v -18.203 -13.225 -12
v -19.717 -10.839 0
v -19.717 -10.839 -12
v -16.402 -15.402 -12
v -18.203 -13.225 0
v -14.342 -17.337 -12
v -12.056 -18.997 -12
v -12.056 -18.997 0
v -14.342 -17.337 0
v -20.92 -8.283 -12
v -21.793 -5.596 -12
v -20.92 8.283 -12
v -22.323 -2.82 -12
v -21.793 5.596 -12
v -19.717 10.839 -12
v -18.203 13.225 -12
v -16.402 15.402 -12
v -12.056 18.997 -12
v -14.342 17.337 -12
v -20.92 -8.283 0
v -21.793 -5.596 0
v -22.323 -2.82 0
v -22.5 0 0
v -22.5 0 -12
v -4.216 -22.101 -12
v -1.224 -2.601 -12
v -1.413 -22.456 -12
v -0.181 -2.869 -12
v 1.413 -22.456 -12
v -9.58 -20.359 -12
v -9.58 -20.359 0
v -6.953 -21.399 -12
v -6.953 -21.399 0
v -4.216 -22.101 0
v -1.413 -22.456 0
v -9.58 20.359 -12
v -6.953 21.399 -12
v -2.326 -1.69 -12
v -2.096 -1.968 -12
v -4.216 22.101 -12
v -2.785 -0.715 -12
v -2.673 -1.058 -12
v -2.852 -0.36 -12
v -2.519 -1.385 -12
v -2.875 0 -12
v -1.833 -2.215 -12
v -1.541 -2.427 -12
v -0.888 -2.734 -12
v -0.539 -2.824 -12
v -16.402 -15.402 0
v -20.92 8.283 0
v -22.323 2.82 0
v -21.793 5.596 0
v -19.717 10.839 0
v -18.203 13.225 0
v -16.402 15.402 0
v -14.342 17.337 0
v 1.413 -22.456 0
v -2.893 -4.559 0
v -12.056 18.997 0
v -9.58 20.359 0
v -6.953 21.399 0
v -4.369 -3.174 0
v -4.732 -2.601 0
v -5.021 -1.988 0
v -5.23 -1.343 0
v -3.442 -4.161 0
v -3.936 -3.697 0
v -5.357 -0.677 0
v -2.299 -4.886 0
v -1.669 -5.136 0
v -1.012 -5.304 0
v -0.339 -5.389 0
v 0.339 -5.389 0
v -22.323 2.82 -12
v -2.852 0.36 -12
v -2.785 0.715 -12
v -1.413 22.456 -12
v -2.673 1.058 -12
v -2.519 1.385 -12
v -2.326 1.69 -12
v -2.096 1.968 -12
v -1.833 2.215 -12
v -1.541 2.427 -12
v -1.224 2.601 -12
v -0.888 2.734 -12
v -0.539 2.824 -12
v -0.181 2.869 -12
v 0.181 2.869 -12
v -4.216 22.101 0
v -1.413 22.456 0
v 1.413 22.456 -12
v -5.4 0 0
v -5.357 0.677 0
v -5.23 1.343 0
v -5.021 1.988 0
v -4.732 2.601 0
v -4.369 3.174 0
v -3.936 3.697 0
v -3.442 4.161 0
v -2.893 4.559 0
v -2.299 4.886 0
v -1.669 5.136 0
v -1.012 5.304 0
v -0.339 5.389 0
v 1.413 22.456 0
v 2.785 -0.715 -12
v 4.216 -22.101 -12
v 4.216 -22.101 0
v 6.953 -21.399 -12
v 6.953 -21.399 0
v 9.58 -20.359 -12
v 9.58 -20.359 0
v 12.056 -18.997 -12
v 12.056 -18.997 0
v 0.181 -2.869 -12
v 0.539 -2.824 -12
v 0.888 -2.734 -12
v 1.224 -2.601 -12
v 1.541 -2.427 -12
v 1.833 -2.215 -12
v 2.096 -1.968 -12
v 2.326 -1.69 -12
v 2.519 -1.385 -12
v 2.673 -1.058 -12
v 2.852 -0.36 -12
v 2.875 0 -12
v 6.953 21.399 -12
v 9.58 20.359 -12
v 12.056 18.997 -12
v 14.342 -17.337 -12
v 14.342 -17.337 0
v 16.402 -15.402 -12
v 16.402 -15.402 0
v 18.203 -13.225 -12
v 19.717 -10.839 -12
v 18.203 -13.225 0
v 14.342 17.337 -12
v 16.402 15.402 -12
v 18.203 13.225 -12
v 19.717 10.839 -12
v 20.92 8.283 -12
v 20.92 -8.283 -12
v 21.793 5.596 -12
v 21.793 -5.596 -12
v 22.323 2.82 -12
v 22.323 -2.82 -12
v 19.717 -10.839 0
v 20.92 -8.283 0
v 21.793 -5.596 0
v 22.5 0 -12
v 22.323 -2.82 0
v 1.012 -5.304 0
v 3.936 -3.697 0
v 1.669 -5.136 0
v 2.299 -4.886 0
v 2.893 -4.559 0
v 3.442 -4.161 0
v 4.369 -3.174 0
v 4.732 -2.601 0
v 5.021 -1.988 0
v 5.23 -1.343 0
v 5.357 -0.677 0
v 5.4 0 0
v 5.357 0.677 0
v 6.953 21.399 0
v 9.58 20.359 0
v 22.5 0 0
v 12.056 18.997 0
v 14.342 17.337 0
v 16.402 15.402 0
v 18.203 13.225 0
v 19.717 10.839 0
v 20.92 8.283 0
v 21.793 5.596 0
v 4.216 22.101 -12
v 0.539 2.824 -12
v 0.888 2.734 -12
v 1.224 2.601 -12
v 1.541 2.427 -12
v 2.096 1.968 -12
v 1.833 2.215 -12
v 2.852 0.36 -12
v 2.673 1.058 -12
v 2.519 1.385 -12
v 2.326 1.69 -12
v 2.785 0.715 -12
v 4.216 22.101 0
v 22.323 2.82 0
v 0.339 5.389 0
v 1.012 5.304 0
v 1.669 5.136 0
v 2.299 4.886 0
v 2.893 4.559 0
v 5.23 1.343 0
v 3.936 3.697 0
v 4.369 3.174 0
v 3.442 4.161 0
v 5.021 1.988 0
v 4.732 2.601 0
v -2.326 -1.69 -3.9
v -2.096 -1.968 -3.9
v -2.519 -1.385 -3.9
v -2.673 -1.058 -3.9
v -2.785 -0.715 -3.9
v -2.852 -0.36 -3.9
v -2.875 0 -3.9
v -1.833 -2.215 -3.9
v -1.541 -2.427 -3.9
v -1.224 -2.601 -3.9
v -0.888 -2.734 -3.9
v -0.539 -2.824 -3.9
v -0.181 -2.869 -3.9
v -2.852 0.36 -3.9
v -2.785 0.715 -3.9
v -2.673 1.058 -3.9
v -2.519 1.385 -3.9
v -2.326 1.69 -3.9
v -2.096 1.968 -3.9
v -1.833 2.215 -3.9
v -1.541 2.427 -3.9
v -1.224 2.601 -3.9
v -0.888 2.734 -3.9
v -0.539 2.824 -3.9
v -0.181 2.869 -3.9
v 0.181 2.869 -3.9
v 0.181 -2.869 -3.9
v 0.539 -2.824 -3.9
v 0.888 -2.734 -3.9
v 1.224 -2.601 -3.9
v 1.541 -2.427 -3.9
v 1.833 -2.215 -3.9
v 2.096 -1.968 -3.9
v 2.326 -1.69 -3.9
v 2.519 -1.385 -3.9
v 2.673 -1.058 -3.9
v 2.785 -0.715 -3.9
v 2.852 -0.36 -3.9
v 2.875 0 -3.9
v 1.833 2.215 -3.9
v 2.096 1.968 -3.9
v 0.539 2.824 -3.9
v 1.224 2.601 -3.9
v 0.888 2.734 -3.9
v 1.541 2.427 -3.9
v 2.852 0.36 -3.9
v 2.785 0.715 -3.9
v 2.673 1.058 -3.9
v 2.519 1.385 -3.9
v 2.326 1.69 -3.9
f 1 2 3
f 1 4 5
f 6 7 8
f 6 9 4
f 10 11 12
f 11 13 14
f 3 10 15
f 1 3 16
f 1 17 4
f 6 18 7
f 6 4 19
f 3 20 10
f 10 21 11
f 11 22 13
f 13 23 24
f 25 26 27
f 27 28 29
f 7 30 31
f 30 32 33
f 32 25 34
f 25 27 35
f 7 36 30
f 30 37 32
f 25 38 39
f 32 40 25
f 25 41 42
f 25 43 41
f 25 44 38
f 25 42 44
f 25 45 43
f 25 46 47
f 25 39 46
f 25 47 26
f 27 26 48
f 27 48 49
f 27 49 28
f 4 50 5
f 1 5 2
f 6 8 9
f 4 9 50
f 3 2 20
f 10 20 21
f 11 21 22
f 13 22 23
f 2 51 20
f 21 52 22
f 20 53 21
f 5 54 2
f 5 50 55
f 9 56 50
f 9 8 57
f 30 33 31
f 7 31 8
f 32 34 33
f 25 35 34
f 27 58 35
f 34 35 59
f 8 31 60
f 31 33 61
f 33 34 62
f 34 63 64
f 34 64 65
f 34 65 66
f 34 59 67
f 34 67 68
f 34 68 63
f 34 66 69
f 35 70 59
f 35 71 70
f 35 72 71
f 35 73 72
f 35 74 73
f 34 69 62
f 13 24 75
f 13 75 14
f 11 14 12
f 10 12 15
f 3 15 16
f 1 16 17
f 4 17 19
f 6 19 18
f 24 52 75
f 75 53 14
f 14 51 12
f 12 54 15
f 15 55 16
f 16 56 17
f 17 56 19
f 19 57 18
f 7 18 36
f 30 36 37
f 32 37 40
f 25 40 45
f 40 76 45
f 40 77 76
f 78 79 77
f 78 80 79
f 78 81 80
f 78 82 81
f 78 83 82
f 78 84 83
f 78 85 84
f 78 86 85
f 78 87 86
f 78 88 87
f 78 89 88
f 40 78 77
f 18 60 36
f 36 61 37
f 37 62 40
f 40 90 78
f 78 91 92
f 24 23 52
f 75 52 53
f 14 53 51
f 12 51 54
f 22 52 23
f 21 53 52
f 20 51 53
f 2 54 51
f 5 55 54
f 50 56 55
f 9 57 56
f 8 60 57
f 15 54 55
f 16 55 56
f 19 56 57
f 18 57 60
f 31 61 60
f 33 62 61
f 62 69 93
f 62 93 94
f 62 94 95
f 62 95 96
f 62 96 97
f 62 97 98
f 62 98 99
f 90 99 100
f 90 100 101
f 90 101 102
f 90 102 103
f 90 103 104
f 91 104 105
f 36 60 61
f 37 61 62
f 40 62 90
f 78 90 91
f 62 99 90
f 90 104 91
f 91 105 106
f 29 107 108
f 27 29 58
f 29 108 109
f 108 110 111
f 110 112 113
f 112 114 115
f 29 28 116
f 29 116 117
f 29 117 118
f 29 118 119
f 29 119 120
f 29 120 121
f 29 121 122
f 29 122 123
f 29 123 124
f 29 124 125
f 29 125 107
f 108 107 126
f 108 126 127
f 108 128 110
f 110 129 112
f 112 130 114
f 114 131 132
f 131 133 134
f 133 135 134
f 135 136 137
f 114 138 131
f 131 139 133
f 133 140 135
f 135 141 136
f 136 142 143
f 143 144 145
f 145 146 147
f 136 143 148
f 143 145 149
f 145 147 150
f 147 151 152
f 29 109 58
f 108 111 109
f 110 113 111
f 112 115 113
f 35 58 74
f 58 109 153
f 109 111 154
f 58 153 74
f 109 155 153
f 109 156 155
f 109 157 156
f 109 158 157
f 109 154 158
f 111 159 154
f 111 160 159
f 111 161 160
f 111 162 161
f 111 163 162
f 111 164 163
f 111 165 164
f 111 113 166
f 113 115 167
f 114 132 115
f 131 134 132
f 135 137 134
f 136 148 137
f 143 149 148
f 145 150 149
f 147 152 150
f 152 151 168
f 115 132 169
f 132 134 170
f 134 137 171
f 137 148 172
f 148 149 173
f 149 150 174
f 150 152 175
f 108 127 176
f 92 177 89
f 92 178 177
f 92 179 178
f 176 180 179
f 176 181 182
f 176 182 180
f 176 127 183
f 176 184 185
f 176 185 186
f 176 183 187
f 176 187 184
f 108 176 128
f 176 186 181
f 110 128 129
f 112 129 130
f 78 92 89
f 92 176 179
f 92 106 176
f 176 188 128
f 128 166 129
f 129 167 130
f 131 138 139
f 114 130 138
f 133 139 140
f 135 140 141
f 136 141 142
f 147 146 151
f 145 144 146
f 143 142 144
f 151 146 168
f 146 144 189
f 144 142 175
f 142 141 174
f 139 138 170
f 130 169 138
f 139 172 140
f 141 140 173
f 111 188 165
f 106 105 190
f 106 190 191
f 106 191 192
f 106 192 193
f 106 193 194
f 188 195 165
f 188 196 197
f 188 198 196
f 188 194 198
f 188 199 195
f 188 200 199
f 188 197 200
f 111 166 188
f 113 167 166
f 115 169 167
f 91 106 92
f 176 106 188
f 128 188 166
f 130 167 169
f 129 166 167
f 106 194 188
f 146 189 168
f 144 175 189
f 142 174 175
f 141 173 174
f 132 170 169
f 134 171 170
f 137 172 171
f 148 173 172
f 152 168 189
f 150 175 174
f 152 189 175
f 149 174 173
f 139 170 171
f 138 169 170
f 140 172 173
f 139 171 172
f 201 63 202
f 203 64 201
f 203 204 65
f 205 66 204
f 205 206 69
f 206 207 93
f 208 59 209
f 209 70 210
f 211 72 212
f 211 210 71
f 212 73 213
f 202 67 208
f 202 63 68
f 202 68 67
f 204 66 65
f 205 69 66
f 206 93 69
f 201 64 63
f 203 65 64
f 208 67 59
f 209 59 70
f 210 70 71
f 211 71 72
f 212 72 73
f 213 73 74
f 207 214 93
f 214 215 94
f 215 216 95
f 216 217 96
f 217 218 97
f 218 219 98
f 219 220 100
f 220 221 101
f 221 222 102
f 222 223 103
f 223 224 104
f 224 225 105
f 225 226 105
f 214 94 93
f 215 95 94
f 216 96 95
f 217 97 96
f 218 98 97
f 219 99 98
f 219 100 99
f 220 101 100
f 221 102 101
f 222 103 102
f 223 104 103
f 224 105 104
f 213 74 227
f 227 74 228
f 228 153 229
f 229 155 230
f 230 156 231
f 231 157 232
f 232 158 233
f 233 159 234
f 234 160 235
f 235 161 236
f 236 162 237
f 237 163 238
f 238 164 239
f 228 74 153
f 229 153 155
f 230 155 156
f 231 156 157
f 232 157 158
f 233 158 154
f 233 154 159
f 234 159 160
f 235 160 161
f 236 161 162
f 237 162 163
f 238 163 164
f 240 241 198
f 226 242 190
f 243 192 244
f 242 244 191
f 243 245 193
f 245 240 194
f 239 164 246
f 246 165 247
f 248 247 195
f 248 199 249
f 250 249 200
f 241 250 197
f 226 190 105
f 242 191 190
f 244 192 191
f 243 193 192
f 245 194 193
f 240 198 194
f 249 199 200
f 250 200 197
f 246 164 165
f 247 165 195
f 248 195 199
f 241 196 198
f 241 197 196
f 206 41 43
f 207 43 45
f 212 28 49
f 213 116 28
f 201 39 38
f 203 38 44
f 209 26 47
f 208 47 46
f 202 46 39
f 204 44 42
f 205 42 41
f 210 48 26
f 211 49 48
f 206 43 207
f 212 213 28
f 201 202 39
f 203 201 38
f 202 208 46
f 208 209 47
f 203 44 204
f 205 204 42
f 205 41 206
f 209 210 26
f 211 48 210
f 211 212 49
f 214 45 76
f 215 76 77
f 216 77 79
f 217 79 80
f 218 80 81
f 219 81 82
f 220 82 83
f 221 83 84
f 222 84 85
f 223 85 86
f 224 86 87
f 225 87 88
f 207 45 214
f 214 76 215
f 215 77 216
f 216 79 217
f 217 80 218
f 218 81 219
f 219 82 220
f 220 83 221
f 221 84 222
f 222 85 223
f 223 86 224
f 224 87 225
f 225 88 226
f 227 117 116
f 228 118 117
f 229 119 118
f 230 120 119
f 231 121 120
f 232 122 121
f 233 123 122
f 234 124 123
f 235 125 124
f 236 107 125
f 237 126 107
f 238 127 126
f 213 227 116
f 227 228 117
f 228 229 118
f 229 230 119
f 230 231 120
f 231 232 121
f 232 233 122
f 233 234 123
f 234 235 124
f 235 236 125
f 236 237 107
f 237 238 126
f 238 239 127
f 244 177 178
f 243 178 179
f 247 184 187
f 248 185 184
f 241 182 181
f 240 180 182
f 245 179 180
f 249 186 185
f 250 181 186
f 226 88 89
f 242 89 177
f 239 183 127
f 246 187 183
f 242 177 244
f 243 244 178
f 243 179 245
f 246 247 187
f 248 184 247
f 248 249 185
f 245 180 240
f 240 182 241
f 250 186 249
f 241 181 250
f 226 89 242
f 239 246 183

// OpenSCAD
$fn = 50;

difference() {
	union() {
		translate(v = [0, 0, -12.0]) {
			cylinder(h = 12, r = 22.5);
		}
		#translate(v = [0, 0, -15.0]) {
			cylinder(h = 15, r = 2.875);
		}
	}
	union() {
		translate(v = [0, 0, 0]) {
			rotate(a = [0, 0, 0]) {
				difference() {
					union() {
						translate(v = [0, 0, -15.0]) {
							cylinder(h = 15, r = 2.6);
						}
						translate(v = [0, 0, -3.9]) {
							cylinder(h = 3.9, r1 = 2.875, r2 = 5.4);
						}
						translate(v = [0, 0, -15.0]) {
							cylinder(h = 15, r = 2.875);
						}
						translate(v = [0, 0, -15.0]) {
							cylinder(h = 15, r = 2.6);
						}
					}
					union();
				}
			}
		}
	}
}
